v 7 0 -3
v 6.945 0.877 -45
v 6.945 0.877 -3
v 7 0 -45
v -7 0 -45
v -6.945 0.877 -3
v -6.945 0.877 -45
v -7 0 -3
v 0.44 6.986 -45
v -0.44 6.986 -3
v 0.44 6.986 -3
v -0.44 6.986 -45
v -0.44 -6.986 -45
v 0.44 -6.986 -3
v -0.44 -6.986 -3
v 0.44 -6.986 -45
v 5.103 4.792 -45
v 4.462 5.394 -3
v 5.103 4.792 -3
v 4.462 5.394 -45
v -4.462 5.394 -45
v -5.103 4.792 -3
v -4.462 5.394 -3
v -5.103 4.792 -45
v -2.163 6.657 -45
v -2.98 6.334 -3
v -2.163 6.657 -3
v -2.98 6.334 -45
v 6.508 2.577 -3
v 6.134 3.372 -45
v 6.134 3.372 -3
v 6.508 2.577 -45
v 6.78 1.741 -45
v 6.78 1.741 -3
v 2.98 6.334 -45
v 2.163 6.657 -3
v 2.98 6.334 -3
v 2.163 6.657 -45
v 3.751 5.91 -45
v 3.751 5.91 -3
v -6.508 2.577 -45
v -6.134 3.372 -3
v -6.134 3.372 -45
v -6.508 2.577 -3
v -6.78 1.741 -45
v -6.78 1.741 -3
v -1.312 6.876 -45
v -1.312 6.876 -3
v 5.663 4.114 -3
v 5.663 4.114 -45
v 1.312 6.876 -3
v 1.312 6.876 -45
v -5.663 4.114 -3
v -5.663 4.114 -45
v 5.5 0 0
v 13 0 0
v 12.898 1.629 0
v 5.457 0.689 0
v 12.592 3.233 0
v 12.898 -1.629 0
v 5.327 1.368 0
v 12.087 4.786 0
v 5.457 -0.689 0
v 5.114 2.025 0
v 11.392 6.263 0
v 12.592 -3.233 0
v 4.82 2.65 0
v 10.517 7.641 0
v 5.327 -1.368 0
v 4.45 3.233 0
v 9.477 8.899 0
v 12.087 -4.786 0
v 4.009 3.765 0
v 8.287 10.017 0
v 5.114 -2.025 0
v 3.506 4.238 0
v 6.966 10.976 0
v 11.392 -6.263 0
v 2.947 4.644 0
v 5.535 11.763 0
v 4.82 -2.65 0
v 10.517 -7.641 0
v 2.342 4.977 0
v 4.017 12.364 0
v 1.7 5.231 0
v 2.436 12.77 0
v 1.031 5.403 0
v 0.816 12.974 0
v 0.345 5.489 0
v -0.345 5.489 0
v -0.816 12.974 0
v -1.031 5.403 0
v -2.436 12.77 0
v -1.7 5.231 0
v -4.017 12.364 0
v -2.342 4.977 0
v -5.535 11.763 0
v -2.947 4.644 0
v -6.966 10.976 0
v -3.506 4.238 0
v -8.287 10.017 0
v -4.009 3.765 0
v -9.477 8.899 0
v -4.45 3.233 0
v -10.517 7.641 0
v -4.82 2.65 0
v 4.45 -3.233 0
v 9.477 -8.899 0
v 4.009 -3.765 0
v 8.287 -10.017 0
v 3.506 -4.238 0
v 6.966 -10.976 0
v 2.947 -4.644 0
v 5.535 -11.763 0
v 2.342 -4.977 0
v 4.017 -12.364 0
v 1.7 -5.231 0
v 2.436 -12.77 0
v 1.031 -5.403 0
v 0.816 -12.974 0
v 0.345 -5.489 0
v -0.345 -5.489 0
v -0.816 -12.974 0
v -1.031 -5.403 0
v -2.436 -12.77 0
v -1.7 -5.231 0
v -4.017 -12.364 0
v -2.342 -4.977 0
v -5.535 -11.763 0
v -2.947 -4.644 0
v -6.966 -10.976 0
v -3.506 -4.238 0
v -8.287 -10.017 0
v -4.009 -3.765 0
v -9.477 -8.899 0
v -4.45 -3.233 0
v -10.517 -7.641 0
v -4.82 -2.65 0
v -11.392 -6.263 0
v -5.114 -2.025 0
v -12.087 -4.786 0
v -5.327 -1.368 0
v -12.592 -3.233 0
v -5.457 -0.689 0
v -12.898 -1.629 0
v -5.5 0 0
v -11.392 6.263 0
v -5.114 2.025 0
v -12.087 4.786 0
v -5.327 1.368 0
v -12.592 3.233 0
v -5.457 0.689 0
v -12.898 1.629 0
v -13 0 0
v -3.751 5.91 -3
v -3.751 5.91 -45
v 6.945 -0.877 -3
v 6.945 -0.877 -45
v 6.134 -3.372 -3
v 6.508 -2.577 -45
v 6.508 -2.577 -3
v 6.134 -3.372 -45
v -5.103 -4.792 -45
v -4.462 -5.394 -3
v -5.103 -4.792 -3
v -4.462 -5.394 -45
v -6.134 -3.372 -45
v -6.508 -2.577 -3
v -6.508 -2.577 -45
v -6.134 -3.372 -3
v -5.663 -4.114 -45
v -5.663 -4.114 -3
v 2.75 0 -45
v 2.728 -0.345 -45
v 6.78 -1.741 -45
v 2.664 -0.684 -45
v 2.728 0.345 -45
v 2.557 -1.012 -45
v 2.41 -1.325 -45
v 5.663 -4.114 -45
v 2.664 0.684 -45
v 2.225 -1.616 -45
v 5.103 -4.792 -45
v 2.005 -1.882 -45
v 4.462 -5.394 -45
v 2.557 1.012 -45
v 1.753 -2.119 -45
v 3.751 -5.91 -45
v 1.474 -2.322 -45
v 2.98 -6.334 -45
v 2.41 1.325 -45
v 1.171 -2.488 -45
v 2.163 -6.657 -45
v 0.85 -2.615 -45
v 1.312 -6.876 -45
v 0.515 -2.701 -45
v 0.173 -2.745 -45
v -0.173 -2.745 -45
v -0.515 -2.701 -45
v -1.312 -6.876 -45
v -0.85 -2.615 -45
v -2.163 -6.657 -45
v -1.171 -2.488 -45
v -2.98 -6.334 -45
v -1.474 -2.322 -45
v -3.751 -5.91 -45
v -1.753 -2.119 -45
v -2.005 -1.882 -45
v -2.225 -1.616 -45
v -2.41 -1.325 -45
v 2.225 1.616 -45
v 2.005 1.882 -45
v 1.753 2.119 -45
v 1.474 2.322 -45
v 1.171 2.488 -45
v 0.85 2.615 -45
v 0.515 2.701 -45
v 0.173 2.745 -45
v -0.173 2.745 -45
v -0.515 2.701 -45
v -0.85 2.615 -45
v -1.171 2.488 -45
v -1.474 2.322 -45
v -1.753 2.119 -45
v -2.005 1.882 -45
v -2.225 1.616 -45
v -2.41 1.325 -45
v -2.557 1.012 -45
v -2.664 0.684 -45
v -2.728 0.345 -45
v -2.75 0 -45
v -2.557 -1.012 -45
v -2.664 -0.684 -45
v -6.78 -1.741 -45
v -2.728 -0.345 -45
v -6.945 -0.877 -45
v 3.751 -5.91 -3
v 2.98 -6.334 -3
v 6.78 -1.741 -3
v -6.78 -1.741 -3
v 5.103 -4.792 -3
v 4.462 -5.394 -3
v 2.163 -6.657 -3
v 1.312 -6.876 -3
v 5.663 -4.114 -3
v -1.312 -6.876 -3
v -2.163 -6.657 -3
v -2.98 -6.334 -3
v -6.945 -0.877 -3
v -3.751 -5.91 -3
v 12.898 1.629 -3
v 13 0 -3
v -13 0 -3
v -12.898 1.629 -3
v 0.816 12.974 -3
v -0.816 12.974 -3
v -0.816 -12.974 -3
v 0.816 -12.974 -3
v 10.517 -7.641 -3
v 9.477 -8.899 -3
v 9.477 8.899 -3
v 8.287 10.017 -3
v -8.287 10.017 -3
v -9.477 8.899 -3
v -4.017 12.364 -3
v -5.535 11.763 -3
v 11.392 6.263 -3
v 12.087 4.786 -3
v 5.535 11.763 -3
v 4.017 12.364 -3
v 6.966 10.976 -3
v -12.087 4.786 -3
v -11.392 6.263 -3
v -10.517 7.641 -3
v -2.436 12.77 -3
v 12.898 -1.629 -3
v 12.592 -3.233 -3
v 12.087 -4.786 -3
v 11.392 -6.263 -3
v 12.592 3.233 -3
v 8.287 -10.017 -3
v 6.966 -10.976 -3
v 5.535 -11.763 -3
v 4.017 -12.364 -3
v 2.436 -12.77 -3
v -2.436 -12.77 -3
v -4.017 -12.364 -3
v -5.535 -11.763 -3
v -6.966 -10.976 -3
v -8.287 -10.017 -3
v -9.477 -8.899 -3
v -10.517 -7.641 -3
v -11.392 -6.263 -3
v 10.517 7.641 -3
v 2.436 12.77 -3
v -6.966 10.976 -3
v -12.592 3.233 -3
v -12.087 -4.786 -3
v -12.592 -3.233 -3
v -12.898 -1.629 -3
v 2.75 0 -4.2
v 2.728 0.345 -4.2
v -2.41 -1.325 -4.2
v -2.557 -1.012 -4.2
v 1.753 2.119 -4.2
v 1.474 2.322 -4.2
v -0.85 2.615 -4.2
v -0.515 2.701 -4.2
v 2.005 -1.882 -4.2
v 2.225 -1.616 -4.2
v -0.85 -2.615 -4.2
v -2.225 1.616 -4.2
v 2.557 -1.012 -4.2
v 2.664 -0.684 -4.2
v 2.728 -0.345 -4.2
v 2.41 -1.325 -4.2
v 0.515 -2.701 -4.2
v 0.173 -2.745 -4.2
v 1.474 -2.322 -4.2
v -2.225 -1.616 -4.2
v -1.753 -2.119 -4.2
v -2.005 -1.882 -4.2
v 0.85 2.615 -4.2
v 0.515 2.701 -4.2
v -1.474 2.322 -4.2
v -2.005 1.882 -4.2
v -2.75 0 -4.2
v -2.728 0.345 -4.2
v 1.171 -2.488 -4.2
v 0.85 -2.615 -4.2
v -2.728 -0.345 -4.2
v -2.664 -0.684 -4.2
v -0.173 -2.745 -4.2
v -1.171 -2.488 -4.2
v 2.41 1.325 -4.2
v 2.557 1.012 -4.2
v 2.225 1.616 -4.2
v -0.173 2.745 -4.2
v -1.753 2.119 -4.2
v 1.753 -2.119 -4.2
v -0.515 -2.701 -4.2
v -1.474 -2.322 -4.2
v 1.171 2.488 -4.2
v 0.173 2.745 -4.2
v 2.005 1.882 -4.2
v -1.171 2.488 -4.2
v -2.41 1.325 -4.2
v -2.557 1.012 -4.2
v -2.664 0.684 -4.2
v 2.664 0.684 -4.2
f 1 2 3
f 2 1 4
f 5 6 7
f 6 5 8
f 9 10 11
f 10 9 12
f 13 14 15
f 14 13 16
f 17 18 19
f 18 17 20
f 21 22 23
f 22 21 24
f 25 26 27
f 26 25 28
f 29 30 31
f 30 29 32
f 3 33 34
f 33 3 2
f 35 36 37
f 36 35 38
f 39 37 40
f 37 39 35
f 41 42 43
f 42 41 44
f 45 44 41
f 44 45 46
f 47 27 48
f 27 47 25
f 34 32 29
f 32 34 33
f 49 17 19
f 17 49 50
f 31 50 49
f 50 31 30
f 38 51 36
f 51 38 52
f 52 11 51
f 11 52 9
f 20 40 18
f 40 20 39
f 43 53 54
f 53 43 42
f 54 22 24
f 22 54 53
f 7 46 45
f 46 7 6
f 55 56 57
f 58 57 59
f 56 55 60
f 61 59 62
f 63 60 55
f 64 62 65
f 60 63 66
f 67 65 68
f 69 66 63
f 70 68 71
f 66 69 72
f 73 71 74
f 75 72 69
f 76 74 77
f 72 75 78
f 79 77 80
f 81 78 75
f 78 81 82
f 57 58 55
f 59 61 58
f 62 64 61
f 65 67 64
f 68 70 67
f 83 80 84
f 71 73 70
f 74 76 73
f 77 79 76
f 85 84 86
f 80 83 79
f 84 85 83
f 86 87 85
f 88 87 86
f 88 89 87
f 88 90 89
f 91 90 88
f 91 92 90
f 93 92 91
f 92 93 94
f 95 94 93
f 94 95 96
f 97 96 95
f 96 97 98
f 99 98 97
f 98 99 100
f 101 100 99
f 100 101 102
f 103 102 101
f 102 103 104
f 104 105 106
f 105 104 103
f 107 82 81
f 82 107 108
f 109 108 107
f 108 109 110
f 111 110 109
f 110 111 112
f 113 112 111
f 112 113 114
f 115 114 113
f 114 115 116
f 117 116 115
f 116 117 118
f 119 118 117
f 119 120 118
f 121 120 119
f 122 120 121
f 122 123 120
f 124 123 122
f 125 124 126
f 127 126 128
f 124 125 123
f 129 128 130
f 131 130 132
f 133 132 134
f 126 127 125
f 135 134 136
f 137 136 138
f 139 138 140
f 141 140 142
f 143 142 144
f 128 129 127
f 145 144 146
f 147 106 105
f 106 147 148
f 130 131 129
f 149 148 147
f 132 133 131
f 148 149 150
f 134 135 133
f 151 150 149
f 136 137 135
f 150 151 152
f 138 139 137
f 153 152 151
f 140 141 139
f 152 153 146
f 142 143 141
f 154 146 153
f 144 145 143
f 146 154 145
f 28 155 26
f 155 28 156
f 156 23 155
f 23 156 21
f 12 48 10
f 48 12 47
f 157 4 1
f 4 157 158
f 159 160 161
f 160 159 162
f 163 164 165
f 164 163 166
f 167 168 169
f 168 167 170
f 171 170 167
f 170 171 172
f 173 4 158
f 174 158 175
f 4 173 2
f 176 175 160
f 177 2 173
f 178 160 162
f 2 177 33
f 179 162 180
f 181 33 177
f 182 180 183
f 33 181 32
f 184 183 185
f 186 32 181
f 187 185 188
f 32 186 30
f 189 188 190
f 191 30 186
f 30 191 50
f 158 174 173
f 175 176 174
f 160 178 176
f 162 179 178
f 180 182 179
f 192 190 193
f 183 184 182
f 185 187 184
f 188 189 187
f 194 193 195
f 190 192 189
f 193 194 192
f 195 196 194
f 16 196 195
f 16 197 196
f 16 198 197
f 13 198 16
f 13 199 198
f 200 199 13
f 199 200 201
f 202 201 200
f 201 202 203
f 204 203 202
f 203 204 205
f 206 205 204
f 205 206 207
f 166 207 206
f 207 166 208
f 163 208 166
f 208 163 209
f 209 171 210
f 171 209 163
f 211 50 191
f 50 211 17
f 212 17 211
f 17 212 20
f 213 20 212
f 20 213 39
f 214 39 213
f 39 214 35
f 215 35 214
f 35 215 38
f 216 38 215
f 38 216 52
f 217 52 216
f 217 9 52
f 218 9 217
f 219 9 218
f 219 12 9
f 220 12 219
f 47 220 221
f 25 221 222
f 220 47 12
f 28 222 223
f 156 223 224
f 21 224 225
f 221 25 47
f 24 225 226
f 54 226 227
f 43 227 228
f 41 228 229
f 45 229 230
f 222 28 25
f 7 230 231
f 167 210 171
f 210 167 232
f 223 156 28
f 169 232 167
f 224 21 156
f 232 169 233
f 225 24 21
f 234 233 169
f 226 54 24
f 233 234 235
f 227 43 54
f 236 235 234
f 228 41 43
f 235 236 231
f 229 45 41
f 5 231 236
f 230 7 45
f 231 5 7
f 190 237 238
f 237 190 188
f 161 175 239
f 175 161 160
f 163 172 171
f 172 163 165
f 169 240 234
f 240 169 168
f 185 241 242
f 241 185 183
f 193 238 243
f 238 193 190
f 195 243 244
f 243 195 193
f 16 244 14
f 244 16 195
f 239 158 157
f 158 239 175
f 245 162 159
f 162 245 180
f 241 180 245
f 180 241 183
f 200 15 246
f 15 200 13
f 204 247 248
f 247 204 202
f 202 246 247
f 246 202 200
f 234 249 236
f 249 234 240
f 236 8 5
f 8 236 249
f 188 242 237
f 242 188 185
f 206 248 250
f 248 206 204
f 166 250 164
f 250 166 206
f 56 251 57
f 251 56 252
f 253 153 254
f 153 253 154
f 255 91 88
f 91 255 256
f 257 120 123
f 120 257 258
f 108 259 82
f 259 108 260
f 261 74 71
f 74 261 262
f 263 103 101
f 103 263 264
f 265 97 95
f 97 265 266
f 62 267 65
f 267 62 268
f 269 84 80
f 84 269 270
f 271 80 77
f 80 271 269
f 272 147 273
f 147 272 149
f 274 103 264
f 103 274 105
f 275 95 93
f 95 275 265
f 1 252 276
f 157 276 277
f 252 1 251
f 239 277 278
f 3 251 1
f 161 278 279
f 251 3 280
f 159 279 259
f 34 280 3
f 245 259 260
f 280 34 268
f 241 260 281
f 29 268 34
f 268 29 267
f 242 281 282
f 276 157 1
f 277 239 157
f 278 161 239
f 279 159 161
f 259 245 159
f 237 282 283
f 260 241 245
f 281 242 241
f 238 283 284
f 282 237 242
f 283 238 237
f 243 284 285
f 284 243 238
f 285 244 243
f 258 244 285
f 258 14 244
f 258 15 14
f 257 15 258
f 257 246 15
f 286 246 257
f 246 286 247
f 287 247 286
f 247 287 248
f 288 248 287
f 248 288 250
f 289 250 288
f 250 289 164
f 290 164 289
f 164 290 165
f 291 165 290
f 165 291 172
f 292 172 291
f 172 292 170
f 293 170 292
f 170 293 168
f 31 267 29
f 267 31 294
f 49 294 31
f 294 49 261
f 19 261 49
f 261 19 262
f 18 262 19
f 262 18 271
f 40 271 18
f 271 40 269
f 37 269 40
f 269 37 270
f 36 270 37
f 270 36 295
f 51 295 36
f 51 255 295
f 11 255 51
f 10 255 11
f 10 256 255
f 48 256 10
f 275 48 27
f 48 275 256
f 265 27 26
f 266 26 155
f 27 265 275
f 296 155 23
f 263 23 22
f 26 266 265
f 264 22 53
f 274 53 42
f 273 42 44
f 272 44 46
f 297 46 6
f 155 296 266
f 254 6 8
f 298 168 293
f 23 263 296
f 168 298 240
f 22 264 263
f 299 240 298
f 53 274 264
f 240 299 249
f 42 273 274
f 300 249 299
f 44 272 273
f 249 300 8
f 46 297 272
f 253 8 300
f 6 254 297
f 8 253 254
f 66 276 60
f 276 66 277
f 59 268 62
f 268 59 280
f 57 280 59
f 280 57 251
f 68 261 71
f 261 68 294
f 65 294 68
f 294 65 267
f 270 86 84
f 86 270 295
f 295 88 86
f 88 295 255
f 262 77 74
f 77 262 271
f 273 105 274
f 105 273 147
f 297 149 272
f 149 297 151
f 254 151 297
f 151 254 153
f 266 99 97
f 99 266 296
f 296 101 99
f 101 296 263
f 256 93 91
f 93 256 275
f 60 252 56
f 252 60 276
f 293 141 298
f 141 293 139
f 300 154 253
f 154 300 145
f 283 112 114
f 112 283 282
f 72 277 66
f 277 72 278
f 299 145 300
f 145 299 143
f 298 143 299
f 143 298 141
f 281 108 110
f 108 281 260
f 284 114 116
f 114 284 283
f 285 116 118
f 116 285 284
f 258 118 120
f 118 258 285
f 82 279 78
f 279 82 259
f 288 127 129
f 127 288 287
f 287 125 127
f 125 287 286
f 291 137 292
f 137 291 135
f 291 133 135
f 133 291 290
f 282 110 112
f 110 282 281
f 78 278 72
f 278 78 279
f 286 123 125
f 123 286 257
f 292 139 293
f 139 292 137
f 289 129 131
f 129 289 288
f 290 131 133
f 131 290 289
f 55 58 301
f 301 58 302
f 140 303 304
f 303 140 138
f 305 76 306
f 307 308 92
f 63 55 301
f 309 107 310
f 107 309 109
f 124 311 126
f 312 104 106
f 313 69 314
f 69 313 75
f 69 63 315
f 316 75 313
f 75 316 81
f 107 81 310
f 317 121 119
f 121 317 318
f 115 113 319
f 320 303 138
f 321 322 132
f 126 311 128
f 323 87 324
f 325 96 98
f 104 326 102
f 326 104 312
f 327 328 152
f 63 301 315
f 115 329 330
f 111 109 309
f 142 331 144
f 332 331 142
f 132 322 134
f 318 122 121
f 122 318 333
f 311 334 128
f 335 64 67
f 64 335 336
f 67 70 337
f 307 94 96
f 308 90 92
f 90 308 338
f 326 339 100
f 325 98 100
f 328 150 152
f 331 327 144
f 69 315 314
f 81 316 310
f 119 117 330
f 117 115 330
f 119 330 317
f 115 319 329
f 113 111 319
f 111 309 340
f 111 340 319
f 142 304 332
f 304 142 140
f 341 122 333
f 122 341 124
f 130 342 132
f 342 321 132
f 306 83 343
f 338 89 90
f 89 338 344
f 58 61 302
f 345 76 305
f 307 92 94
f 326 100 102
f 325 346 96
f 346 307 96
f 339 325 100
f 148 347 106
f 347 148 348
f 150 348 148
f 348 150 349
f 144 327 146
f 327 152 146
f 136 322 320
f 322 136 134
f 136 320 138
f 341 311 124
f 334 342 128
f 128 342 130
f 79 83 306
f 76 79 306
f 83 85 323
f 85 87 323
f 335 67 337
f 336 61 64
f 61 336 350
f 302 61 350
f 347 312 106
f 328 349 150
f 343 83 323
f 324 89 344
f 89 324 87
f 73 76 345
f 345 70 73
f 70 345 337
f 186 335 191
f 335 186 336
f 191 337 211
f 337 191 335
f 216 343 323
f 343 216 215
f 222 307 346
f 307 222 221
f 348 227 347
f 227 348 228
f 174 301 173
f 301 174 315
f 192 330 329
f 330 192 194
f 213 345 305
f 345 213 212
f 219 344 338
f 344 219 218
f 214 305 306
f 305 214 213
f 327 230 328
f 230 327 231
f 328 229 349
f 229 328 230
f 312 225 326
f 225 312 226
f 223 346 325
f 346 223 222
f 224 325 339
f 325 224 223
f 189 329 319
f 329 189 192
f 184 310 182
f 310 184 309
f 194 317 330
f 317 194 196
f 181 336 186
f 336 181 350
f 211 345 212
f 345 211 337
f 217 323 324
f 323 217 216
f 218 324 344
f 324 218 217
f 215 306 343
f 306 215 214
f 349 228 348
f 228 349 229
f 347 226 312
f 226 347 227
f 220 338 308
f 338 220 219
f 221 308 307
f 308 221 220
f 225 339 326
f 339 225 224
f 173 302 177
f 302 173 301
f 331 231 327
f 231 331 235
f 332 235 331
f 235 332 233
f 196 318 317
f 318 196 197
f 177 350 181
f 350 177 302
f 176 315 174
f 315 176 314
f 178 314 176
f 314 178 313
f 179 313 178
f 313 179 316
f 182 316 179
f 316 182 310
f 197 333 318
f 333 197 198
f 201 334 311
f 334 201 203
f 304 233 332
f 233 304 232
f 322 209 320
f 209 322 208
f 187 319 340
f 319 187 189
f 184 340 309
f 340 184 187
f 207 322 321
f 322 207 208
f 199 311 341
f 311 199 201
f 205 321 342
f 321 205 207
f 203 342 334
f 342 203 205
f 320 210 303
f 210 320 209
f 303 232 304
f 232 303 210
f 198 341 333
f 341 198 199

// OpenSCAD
$fn = 50;


difference() {
	union() {
		translate(v = [0, 0, -45.0000000000]) {
			cylinder(h = 45, r = 7.0000000000);
		}
		translate(v = [0, 0, -3.0000000000]) {
			cylinder(h = 3, r = 13.0000000000);
		}
	}
	union() {
		translate(v = [0, 0, 0]) {
			rotate(a = [0, 0, 0]) {
				difference() {
					union() {
						#translate(v = [0, 0, -45.0000000000]) {
							cylinder(h = 45, r = 2.2500000000);
						}
						#translate(v = [0, 0, -4.2000000000]) {
							cylinder(h = 4.2000000000, r1 = 2.7500000000, r2 = 5.5000000000);
						}
						#translate(v = [0, 0, -45.0000000000]) {
							cylinder(h = 45, r = 2.7500000000);
						}
						#translate(v = [0, 0, -45.0000000000]) {
							cylinder(h = 45, r = 2.2500000000);
						}
					}
					union();
				}
			}
		}
	}
}
